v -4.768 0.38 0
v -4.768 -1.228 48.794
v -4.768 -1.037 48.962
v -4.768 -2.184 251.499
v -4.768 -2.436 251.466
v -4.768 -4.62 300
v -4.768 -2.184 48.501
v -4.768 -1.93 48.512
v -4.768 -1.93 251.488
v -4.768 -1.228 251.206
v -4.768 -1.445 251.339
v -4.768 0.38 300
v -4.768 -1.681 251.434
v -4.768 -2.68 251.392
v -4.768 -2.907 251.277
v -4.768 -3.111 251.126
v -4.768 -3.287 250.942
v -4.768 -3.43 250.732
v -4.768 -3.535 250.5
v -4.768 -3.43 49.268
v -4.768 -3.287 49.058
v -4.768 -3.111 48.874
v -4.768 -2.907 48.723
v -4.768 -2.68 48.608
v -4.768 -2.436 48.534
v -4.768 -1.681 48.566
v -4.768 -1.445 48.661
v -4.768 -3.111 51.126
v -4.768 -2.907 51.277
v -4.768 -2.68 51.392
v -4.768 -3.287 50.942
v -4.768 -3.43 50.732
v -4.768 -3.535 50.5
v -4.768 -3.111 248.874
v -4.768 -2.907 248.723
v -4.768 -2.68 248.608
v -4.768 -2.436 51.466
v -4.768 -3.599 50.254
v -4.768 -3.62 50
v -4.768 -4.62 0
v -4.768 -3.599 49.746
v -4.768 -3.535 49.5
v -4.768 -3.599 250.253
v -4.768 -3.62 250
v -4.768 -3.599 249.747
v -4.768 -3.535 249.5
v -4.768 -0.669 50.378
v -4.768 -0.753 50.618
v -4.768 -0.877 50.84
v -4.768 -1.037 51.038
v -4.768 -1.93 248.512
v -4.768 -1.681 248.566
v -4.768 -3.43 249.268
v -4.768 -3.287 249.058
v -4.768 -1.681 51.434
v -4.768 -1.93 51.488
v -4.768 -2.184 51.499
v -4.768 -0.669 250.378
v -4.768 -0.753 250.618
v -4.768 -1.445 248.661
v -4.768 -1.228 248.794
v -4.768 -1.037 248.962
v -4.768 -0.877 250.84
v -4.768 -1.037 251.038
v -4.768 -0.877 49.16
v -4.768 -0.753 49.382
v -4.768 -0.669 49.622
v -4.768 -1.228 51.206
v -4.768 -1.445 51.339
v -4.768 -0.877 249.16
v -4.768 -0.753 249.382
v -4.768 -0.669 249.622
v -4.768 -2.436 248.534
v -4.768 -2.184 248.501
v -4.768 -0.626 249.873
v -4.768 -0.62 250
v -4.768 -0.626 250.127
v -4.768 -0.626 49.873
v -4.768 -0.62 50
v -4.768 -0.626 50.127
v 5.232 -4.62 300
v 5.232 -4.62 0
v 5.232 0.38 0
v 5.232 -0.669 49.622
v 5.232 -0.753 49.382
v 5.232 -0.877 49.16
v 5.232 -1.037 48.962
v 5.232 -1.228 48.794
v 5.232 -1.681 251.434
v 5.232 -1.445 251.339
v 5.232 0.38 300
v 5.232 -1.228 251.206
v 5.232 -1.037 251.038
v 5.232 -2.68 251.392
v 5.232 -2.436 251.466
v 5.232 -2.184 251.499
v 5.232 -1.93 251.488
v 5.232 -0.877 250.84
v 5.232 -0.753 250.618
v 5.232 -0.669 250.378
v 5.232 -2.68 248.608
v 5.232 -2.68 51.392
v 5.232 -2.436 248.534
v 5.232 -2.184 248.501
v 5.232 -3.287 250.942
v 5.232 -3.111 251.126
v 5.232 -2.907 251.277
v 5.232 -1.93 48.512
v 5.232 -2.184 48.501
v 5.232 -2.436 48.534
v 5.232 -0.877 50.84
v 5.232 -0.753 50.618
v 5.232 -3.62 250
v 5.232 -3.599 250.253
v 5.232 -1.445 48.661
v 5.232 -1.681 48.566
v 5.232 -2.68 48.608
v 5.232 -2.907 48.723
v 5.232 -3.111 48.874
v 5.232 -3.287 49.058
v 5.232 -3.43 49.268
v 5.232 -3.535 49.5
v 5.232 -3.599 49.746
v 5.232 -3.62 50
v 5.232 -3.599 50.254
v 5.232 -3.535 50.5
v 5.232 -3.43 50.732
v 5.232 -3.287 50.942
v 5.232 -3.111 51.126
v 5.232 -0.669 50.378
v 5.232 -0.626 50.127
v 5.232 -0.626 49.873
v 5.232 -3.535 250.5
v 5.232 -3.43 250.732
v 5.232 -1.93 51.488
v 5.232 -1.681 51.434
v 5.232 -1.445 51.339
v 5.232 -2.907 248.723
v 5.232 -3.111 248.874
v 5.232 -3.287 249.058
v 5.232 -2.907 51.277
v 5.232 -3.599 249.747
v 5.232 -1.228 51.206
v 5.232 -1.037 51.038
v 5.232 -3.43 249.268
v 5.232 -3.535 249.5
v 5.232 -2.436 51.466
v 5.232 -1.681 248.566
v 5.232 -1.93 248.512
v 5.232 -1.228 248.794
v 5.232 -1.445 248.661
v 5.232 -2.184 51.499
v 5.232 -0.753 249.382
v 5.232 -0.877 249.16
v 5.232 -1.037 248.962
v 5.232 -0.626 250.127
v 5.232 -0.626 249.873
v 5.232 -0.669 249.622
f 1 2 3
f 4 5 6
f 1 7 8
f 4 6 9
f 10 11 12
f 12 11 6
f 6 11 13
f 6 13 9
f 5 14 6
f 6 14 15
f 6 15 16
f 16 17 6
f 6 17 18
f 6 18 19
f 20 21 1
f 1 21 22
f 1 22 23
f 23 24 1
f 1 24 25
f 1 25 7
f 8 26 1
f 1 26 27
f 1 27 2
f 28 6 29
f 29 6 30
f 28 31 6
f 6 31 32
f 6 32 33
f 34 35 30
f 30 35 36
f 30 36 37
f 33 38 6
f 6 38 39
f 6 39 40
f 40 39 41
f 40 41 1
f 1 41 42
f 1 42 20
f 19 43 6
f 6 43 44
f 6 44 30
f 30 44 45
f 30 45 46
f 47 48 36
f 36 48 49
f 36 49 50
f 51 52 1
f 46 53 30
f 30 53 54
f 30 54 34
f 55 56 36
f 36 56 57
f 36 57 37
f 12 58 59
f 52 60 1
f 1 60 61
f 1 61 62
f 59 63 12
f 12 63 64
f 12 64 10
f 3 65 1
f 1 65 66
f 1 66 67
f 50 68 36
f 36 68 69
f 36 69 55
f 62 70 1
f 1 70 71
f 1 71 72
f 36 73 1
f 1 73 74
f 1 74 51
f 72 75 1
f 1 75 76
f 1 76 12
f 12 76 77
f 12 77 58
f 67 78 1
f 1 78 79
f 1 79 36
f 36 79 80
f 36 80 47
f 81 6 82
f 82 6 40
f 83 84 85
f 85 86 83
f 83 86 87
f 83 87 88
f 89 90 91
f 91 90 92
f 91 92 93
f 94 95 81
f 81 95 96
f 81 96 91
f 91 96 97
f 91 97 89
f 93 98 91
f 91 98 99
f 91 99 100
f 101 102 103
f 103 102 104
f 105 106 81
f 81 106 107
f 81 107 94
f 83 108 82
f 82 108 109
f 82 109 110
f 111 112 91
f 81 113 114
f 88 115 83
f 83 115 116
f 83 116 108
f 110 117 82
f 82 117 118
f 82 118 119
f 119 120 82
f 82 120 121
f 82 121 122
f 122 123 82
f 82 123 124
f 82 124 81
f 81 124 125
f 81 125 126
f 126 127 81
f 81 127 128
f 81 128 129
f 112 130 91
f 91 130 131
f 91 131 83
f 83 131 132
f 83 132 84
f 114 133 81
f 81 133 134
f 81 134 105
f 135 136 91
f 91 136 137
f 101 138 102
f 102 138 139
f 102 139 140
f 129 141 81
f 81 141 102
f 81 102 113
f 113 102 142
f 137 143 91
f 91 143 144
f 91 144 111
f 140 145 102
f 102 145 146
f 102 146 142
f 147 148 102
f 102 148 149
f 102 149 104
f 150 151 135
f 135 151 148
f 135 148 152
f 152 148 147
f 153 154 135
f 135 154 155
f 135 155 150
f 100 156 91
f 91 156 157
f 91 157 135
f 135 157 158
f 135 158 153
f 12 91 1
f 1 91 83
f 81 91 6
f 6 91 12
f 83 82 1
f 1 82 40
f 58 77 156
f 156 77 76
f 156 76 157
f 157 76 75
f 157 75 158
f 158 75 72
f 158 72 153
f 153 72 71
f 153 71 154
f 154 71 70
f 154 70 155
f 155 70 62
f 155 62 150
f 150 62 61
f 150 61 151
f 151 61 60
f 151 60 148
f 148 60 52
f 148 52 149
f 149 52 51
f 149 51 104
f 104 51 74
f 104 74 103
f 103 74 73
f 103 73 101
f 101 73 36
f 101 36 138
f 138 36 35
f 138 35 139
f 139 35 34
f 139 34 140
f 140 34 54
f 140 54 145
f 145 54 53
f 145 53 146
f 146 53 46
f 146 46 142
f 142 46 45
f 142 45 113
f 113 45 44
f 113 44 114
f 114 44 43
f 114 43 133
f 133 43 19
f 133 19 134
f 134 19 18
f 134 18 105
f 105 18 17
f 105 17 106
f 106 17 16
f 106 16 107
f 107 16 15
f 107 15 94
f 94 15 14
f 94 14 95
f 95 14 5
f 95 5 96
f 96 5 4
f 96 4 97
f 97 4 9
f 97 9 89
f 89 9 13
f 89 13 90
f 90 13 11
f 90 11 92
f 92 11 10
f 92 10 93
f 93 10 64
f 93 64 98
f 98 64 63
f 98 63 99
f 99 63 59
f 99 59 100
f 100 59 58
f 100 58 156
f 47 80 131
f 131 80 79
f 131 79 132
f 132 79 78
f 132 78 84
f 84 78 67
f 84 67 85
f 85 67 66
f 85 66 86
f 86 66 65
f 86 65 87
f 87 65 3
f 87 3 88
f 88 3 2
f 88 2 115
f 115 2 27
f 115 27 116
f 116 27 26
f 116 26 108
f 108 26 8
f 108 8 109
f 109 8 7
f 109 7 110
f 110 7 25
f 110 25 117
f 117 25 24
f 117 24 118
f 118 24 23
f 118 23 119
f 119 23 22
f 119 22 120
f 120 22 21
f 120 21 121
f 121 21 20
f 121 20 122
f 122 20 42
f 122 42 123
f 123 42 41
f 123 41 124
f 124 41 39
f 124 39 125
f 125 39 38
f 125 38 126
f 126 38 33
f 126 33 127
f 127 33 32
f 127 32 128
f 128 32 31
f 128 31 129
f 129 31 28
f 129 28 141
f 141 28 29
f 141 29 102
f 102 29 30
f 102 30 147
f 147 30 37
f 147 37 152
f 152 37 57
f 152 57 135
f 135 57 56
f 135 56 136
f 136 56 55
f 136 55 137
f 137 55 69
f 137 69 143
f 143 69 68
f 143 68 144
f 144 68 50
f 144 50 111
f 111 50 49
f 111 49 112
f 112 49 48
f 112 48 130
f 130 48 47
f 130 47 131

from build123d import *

# Parameters (mm, degrees)
SKETCH1_W               = 10
SKETCH1_H               = 5
BOSS_EXTRUDE1_DEPTH     = 300
CUT_EXTRUDE2_DEPTH      = 301.20217644
CUT_EXTRUDE2_DEPTH_BACK = 301.20217644
SKETCH3_R               = 1.5


with BuildPart() as part:
    # Sketch1 → Boss-Extrude1 (new body)
    with BuildSketch(Plane.XY):
        with Locations((0.232067511, -2.120253165)):
            Rectangle(SKETCH1_W, SKETCH1_H)
    extrude(amount=BOSS_EXTRUDE1_DEPTH)

    # Sketch3 → Cut-Extrude2 (cut, two sides: drawn at the far end of the back side and taken through both)
    with BuildSketch(Plane.ZY.offset(4.767932489).offset(-CUT_EXTRUDE2_DEPTH_BACK)):
        with Locations(Location((250, -2.120253165, 0), (0, 0, 270))):
            Circle(SKETCH3_R)
        with Locations(Location((50, -2.120253165, 0), (0, 0, 270))):
            Circle(SKETCH3_R)
    extrude(amount=CUT_EXTRUDE2_DEPTH + CUT_EXTRUDE2_DEPTH_BACK, mode=Mode.SUBTRACT)


solid = part.part
